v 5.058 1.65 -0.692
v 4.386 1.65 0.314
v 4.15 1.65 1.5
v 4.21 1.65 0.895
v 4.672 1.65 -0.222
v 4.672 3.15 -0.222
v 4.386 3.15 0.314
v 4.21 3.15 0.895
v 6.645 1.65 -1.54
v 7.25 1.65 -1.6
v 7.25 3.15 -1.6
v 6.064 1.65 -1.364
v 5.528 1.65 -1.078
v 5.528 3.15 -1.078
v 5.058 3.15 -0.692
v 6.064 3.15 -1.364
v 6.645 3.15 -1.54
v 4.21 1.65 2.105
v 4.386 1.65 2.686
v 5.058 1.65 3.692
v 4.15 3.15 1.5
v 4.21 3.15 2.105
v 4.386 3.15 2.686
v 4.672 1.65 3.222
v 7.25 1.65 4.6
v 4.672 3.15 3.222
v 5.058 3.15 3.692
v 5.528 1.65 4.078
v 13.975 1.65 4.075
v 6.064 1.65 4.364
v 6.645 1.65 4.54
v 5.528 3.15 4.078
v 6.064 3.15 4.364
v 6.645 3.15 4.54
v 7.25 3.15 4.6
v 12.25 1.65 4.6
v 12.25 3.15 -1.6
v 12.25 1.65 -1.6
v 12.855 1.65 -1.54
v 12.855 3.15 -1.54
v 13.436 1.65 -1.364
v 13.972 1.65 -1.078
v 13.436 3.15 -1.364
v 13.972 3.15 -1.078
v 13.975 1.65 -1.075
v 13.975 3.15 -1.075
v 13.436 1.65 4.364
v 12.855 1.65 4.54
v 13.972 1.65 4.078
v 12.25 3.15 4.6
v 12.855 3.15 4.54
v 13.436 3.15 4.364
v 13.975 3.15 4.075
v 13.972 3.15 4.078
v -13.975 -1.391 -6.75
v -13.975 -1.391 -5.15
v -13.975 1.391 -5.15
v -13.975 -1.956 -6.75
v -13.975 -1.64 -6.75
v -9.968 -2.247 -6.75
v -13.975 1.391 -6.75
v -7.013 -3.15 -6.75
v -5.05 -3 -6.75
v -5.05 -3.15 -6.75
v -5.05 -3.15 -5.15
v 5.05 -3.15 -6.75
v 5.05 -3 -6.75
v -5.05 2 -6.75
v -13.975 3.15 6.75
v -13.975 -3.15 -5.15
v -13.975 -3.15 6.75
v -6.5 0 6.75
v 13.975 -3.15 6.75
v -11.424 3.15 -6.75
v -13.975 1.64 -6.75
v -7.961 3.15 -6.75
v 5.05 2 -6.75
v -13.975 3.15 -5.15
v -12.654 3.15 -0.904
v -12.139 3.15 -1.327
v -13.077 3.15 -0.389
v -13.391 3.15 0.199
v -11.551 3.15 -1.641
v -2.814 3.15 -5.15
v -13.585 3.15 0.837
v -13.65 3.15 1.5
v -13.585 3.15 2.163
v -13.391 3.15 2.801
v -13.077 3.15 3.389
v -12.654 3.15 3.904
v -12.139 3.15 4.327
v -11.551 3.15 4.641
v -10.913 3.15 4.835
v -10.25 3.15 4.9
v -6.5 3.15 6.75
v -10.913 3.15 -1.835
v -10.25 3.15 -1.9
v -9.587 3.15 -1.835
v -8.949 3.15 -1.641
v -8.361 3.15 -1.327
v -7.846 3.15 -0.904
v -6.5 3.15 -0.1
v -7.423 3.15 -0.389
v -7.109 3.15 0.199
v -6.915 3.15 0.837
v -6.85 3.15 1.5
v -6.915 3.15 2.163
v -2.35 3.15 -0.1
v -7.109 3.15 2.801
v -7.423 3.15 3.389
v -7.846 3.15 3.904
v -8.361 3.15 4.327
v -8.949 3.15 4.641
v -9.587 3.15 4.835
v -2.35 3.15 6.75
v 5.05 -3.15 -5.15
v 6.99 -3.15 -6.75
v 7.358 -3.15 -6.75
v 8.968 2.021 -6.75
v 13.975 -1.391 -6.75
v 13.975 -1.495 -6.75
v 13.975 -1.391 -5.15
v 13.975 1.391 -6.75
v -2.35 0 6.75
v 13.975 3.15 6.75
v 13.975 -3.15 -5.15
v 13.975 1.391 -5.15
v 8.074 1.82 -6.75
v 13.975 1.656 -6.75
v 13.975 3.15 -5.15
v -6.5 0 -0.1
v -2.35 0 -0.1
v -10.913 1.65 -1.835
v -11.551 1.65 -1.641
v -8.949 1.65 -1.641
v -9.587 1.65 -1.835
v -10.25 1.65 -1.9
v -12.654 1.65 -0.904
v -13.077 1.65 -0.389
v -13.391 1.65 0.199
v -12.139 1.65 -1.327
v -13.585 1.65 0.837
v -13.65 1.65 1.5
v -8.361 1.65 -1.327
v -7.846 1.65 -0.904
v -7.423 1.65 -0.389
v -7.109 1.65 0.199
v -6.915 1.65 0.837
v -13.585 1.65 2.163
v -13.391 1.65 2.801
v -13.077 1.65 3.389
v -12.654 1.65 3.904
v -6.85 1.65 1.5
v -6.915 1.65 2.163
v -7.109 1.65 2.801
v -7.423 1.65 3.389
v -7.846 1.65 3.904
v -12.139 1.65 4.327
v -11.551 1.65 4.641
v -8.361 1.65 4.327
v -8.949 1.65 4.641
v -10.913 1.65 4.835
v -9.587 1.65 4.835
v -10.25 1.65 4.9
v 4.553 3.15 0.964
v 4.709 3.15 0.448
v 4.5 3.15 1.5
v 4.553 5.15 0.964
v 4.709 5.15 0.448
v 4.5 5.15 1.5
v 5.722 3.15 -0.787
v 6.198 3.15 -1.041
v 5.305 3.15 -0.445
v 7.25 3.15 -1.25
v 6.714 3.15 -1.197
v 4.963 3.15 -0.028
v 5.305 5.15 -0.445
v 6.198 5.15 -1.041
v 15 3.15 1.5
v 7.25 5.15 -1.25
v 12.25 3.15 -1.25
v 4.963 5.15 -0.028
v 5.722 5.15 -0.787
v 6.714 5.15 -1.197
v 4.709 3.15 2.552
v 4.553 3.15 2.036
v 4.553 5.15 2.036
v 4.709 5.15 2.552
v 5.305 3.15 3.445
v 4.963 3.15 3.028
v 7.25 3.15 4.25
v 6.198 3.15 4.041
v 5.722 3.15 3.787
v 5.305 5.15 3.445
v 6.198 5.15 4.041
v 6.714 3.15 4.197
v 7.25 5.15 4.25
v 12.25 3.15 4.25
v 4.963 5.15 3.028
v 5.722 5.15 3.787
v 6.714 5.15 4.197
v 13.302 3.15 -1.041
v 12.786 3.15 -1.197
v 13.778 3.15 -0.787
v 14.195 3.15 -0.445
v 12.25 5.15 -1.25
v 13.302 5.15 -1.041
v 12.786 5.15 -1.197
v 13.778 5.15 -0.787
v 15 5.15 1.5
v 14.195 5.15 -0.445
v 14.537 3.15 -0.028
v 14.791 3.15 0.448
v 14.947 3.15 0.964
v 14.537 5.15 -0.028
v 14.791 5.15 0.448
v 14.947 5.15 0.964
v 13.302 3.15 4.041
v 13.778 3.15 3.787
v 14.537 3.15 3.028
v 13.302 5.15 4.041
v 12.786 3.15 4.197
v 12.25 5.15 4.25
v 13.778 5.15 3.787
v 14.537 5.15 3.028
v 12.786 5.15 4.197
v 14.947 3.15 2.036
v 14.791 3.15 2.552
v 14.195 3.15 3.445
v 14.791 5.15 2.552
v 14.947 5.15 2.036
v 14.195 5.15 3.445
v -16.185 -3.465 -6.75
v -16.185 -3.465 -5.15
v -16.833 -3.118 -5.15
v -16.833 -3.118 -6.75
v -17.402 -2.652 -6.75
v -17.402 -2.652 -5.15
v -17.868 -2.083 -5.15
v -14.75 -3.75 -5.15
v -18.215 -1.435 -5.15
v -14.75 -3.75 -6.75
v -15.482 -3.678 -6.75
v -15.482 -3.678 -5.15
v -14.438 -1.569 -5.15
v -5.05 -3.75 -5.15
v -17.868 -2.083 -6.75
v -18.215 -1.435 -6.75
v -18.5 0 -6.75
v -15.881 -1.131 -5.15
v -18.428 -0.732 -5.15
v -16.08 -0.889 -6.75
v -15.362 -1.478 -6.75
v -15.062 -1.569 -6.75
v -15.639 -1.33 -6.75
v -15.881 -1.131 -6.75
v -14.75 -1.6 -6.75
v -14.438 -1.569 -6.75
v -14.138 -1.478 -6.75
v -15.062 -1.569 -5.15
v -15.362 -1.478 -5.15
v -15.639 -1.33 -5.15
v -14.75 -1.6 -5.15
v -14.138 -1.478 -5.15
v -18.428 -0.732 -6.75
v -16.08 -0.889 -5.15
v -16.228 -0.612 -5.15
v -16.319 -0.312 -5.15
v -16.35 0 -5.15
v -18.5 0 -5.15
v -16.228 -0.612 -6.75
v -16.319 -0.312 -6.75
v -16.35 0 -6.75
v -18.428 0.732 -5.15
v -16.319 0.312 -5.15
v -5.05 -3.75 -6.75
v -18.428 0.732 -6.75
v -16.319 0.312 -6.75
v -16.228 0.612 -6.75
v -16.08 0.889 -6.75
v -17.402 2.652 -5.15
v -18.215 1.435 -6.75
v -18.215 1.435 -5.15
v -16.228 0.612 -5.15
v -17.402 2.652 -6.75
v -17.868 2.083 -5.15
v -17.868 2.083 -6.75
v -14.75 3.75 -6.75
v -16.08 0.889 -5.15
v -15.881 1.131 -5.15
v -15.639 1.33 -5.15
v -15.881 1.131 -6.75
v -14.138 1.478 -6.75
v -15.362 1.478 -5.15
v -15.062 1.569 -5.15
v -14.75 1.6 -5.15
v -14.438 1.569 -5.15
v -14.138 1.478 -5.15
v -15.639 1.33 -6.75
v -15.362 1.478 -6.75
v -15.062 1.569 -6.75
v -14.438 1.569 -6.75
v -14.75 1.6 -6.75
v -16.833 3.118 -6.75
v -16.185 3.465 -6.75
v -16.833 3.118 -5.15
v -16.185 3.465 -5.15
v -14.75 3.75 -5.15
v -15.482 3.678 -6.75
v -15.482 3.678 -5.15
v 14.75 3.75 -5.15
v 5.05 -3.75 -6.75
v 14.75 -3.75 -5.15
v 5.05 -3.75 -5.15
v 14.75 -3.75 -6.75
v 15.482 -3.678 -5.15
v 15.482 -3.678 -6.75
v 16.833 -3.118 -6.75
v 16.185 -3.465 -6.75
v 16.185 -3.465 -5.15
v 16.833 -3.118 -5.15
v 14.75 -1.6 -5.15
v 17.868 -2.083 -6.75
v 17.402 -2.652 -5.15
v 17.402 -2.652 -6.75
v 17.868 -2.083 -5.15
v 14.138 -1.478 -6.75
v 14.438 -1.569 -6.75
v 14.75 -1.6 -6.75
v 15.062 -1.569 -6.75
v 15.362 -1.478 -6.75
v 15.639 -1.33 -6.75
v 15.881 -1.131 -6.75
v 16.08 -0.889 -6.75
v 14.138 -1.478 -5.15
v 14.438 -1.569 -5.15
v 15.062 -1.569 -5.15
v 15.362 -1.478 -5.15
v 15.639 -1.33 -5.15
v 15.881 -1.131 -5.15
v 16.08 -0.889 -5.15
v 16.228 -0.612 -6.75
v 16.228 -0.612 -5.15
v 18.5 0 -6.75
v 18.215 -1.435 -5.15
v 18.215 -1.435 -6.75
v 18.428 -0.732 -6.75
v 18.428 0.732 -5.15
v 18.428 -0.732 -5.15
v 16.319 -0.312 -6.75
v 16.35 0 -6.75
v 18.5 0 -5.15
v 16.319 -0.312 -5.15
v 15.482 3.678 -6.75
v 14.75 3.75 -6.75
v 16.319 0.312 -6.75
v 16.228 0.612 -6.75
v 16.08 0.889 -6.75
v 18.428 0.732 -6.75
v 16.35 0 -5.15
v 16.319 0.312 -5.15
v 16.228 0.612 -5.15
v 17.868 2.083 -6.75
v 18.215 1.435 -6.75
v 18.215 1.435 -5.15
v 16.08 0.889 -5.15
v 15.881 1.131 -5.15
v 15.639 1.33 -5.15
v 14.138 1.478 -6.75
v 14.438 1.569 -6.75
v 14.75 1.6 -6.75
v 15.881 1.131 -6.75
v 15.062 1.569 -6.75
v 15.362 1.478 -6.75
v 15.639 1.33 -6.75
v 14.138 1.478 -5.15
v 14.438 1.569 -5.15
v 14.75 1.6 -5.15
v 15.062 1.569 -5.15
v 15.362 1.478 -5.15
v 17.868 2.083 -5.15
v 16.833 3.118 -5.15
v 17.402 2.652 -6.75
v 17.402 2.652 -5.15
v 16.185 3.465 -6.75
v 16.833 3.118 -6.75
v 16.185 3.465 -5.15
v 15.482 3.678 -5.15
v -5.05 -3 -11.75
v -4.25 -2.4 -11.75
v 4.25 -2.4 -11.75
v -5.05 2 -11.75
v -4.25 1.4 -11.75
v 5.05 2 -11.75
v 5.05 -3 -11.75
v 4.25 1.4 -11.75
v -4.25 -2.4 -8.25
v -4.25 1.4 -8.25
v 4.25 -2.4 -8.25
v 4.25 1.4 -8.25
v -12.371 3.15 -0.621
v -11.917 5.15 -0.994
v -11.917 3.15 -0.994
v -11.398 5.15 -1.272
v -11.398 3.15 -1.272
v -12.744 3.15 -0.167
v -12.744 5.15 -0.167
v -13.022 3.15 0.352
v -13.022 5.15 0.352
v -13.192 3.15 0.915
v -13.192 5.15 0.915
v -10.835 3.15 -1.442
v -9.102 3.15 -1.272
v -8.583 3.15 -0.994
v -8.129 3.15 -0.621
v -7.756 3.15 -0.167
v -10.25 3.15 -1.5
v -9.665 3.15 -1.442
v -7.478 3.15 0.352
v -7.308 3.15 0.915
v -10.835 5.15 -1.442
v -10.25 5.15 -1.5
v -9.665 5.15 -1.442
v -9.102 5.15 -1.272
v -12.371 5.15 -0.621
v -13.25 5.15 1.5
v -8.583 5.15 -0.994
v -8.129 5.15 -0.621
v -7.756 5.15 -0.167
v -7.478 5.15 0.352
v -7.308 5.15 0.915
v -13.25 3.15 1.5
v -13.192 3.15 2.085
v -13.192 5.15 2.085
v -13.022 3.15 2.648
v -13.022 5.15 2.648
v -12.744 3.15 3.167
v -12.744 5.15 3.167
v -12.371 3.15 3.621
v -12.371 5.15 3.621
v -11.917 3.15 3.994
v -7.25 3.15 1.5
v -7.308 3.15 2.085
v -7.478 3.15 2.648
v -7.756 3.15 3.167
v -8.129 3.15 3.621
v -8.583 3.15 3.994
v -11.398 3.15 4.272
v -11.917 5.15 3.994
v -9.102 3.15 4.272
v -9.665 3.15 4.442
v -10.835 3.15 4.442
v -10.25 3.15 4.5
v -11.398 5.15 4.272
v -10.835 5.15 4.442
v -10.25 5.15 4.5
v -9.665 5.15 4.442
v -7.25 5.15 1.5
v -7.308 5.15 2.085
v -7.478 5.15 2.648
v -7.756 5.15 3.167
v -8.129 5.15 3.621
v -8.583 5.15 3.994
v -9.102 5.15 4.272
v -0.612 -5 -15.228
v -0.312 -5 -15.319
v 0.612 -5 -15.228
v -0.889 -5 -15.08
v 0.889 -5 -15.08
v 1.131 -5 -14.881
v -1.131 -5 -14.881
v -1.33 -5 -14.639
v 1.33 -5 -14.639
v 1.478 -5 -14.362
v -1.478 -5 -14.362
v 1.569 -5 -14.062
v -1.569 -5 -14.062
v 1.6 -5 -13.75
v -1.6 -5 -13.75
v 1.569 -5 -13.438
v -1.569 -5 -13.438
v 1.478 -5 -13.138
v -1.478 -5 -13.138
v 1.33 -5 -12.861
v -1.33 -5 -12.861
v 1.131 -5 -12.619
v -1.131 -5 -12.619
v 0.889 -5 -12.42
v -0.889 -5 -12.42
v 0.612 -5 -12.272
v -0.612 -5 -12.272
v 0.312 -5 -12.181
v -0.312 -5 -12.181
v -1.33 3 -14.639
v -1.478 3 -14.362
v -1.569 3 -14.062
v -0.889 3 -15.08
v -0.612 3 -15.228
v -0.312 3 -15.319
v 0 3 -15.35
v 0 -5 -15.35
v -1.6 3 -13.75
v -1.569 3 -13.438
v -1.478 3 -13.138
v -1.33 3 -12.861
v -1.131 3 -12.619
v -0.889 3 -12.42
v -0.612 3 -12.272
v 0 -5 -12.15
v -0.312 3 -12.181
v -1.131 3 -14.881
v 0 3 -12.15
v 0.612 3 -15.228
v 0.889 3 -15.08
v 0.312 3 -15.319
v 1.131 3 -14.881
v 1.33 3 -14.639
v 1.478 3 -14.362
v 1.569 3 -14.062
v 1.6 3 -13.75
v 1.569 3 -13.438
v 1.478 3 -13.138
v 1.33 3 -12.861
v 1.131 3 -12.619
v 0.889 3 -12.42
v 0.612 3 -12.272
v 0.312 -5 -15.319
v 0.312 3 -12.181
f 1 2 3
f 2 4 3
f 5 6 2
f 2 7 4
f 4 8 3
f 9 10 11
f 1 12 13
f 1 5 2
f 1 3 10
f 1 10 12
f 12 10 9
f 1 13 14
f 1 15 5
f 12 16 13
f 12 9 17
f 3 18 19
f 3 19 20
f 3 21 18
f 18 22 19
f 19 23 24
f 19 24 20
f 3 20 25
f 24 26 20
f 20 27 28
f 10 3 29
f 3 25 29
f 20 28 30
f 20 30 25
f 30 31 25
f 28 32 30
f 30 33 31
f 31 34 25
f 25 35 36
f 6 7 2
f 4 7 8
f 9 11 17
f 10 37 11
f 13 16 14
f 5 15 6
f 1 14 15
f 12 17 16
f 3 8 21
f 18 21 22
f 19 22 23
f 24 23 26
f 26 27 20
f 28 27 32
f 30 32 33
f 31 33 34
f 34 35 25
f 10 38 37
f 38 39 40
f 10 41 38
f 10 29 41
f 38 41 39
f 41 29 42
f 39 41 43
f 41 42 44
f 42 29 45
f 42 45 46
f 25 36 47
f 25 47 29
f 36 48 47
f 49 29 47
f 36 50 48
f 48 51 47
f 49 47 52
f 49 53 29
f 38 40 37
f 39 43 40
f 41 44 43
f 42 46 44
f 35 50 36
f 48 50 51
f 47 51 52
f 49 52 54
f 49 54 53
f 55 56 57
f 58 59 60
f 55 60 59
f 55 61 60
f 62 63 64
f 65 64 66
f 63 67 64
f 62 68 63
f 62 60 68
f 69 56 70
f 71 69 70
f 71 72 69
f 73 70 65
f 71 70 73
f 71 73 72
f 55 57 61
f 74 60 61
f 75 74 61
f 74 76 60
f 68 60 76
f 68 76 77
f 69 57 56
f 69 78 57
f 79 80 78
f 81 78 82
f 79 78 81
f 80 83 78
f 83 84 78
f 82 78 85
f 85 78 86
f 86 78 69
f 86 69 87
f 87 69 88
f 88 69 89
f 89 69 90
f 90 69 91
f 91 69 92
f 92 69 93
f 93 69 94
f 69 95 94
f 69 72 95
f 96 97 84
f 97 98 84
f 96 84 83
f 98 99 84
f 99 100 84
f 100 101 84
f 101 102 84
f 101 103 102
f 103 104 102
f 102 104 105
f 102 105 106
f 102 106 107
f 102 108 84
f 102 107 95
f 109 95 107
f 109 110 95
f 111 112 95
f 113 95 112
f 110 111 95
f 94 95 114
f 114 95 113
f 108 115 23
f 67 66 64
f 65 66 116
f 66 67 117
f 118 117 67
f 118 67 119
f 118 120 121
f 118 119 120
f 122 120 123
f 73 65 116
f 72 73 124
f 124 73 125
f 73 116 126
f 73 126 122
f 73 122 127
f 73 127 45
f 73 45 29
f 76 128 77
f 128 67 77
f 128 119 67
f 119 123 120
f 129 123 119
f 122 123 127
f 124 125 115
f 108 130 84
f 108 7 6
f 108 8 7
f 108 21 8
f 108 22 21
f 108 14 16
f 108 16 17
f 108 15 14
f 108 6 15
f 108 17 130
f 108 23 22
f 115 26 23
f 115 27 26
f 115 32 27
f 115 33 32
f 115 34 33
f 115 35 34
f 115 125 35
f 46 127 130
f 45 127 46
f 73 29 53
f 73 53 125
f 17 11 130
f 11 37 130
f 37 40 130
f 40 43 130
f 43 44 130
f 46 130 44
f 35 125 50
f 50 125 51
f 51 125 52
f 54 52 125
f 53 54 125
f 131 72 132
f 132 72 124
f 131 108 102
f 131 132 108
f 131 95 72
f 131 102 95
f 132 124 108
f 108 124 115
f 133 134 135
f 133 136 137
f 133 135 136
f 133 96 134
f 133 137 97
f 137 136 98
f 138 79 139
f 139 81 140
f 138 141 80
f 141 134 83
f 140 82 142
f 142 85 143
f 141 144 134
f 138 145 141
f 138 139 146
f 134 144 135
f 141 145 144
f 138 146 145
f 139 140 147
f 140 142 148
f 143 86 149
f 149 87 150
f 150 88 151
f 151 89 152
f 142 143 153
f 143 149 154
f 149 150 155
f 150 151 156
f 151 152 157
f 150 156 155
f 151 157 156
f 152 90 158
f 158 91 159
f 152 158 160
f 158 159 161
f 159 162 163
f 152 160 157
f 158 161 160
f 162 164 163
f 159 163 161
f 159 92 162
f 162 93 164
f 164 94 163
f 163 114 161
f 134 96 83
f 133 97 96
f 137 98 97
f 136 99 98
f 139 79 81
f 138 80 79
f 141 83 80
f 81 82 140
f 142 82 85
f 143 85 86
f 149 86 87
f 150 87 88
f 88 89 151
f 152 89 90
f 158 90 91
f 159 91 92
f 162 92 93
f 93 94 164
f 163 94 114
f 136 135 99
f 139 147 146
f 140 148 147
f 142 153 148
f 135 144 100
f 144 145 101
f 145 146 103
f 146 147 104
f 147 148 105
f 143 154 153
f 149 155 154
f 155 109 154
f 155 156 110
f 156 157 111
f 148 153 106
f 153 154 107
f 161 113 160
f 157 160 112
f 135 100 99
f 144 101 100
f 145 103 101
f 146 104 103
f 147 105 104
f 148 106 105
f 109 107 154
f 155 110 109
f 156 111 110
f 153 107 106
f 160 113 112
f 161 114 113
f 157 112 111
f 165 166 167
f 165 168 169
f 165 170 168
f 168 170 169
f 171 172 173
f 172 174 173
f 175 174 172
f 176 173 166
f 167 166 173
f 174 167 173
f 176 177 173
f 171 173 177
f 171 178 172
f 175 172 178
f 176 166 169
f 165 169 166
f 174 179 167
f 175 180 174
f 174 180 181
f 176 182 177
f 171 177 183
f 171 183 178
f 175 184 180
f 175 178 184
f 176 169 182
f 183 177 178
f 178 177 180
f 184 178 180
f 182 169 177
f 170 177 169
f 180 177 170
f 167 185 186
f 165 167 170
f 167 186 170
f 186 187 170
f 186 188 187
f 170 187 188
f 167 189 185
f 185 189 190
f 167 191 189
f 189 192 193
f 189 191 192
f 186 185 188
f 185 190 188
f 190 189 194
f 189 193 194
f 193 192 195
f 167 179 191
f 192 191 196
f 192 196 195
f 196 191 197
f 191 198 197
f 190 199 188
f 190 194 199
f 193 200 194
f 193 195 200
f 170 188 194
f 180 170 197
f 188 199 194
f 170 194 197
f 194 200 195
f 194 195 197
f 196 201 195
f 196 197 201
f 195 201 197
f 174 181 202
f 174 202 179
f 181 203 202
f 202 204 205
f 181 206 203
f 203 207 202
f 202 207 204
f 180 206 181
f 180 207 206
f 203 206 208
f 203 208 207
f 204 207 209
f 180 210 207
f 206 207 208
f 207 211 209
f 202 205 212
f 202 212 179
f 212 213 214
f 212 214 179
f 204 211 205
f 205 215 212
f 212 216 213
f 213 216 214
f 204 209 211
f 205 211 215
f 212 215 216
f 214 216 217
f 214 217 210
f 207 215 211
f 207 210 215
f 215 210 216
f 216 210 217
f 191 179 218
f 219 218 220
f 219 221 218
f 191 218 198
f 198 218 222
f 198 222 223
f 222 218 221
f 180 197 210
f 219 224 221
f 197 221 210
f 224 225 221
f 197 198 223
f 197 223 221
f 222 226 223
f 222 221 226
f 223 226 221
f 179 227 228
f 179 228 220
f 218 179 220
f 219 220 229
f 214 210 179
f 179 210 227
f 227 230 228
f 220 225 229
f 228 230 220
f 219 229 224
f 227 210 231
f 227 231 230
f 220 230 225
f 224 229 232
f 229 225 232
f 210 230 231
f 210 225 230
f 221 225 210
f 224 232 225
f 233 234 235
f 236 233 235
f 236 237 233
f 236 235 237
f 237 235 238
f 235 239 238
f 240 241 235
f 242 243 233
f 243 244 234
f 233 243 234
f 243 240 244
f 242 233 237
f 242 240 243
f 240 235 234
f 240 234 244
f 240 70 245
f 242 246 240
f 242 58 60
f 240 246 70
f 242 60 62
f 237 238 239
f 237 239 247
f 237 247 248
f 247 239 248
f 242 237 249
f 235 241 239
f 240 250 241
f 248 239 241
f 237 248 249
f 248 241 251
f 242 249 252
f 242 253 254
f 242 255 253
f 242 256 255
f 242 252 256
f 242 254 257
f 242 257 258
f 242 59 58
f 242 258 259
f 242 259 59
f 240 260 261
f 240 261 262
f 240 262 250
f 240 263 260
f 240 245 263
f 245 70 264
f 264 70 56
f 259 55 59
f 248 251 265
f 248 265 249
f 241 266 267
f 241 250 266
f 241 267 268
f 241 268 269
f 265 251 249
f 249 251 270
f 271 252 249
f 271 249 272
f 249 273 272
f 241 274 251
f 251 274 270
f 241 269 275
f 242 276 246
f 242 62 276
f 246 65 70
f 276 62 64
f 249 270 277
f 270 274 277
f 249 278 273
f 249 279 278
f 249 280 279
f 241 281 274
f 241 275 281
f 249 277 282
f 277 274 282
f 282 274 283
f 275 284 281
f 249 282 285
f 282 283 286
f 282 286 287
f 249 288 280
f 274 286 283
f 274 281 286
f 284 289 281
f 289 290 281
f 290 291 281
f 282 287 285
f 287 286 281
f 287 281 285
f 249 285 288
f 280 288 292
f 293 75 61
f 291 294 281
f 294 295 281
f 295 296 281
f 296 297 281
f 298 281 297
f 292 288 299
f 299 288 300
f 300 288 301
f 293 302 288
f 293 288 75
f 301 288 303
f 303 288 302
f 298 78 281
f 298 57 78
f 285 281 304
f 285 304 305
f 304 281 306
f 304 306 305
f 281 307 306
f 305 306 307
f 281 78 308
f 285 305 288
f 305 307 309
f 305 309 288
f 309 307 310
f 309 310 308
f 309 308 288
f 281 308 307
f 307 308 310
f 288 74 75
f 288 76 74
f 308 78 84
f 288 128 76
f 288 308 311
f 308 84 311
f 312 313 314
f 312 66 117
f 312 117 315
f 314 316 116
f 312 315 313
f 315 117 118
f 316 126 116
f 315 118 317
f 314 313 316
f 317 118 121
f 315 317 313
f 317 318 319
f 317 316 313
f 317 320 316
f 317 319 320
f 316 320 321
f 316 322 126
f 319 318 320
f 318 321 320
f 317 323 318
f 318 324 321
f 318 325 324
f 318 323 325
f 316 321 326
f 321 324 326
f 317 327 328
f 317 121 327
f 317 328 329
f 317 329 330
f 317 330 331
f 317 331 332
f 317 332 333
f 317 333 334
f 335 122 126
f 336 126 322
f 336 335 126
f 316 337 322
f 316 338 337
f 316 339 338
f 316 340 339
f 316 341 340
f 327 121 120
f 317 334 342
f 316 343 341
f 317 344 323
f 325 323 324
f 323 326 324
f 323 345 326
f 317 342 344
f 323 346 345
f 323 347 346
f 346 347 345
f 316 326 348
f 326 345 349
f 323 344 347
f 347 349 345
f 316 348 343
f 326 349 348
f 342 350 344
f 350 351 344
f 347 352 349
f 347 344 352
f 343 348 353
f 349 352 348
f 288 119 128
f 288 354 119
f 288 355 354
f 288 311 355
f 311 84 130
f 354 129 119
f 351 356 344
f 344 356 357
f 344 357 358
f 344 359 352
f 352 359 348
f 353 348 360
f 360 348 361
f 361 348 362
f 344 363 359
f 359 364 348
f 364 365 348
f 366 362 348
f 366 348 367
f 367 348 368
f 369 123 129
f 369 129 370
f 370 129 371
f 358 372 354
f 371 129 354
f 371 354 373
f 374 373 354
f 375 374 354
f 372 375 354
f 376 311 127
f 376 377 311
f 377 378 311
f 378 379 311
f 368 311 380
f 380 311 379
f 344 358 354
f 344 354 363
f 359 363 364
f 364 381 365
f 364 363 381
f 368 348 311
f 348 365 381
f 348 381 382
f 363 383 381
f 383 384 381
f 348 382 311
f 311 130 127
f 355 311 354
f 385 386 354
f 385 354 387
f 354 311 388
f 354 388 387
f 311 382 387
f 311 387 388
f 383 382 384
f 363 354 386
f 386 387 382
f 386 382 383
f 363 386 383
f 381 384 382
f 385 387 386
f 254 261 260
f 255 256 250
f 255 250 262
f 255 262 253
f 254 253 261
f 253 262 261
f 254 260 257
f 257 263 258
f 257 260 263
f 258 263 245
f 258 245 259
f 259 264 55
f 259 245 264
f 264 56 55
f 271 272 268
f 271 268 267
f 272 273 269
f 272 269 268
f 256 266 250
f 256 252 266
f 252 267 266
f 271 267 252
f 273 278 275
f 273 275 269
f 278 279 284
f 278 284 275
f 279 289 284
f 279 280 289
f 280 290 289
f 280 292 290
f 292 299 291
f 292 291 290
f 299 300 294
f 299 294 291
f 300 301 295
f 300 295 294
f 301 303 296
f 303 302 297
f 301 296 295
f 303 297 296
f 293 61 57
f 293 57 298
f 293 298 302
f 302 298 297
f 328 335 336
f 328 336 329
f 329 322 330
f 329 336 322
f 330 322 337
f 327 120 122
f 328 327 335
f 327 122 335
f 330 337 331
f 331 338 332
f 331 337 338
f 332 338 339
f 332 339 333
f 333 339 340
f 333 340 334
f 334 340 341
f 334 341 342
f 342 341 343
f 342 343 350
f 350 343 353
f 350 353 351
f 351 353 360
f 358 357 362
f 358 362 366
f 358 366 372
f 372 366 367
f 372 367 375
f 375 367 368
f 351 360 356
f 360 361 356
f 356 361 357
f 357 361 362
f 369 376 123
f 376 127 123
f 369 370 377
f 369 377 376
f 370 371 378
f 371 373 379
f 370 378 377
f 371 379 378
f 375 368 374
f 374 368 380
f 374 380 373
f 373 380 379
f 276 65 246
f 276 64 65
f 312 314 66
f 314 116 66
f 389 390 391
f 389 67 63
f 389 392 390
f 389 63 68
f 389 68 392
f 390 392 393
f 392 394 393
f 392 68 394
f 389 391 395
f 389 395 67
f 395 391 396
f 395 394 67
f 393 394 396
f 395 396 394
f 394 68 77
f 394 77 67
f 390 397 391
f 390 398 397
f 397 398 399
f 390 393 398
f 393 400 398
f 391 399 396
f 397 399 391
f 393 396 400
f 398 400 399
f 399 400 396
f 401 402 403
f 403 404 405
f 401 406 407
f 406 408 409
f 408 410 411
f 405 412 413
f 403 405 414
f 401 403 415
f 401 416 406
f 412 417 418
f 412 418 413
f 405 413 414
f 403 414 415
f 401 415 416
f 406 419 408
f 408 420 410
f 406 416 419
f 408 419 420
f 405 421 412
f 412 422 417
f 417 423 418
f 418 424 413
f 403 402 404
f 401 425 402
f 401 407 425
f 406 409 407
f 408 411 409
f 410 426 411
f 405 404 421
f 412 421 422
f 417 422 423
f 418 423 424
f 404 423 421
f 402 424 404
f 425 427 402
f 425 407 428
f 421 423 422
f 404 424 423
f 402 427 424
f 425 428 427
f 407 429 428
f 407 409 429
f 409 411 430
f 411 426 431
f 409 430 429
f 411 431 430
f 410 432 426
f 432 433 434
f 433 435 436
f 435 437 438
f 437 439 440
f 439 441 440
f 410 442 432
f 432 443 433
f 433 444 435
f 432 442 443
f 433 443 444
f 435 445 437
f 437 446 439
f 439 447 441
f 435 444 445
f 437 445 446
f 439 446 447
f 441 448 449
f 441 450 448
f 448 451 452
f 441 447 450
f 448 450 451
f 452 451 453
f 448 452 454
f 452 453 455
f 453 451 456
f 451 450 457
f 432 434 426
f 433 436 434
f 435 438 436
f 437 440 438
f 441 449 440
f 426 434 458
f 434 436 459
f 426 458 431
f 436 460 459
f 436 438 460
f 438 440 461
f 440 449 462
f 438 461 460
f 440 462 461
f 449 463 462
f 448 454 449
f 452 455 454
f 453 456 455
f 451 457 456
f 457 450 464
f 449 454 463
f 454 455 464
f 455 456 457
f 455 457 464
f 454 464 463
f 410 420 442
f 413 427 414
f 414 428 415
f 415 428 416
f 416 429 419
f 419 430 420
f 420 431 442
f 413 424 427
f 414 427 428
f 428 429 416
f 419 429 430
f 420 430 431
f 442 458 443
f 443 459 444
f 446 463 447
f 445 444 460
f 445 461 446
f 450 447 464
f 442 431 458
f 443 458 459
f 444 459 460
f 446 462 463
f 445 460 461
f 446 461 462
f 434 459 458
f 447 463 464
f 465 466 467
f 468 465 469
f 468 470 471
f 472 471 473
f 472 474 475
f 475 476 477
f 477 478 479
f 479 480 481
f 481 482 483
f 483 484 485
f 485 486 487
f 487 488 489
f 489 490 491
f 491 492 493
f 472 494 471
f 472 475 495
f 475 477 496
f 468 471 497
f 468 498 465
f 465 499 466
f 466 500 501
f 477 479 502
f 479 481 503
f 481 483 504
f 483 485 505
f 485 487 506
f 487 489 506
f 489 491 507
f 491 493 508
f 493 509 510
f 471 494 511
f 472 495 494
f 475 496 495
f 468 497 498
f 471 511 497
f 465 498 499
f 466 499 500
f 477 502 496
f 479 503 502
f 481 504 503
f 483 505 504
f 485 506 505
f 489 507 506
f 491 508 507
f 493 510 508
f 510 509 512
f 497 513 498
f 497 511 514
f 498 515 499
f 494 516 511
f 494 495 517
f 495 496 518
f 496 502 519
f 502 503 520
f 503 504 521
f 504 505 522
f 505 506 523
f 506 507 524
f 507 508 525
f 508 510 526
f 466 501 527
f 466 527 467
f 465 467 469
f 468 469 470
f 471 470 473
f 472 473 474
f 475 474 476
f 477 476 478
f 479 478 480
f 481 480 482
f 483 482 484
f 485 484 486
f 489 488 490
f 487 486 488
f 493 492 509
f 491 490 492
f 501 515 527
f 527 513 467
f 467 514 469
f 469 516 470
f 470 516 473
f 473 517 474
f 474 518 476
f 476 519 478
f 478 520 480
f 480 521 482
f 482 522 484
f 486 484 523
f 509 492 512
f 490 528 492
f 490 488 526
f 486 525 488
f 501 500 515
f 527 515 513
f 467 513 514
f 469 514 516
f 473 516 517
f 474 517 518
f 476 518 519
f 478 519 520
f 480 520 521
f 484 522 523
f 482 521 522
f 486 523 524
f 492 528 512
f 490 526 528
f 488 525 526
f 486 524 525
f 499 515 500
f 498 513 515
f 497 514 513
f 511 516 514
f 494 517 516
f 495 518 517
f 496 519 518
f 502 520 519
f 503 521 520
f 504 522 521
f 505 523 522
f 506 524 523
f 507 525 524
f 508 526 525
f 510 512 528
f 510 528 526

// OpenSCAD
// Sharp GP2Y0A21YK0F Distance Measuring Sensor
// Units: mm
// Origin: Center of main sensor body
// Axes: +X = Right, +Y = Forward (Lens direction), +Z = Up

$fn = 32;

// Main Dimensions from Datasheet
body_w = 27.95;     // 7.5 + 4.15 + 16.3 mm
body_h = 13.5;      // Height of main body
body_d = 6.3;       // Case depth

flange_w = 37.0;    // Total width including mounting ears
flange_h = 1.6;     // Thickness of mounting bar
flange_d = 7.5;     // Depth of mounting bar (2 * R3.75)
hole_dist = 29.5;   // Distance between mounting holes
hole_dia = 3.2;     // Diameter of mounting holes

// Lens position relative to center
// Left hole at X = -14.75, Emitter center = -14.75 + 4.5 = -10.25
// Detector center = -10.25 + 20.0 = +9.75
emitter_x = -10.25;
detector_x = 9.75;

module gp2y0a21yk0f() {
    union() {
        // --- Main Lens Case Body ---
        difference() {
            // Main case block
            translate([0, 0, 0])
                cube([body_w, body_d, body_h], center=true);
            
            // Top/Front divider notch between emitter and detector
            translate([emitter_x + 7.5/2 + 4.15/2, body_d/4 + 0.1, body_h/4])
                cube([4.15, body_d/2 + 0.2, body_h/2 + 0.2], center=true);
            
            // Lens window recessed cutouts on front (+Y)
            translate([emitter_x, body_d/2 - 0.5, 1.5])
                rotate([-90, 0, 0])
                    cylinder(d=6.8, h=2, center=true);

            translate([detector_x, body_d/2 - 0.5, 1.5])
                rotate([-90, 0, 0])
                    hull() {
                        translate([-2.5, 0, 0]) cylinder(d=6.2, h=2, center=true);
                        translate([ 2.5, 0, 0]) cylinder(d=6.2, h=2, center=true);
                    }
        }

        // --- Lenses (Protruding +Y by 2mm) ---
        // Light Emitter Lens (Circular)
        translate([emitter_x, body_d/2 + 1.0, 1.5])
            rotate([-90, 0, 0])
                cylinder(d=6.0, h=2.0, center=true);

        // Light Detector Lens (Oval / Dual-convex)
        translate([detector_x, body_d/2 + 1.0, 1.5])
            rotate([-90, 0, 0])
                hull() {
                    translate([-2.5, 0, 0]) cylinder(d=5.5, h=2.0, center=true);
                    translate([ 2.5, 0, 0]) cylinder(d=5.5, h=2.0, center=true);
                }

        // --- Mounting Flange Bar ---
        translate([0, 0, -body_h/2 + flange_h/2]) {
            difference() {
                // Flange outer shape
                hull() {
                    translate([-hole_dist/2, 0, 0])
                        cylinder(d=flange_d, h=flange_h, center=true);
                    translate([hole_dist/2, 0, 0])
                        cylinder(d=flange_d, h=flange_h, center=true);
                }
                
                // Two Mounting Holes (dia 3.2mm)
                translate([-hole_dist/2, 0, 0])
                    cylinder(d=hole_dia, h=flange_h + 1, center=true);
                translate([hole_dist/2, 0, 0])
                    cylinder(d=hole_dia, h=flange_h + 1, center=true);
                
                // Cable cutout notch
                translate([0, -flange_d/4, 0])
                    cube([10.1, flange_d/2 + 0.1, flange_h + 1], center=true);
            }
        }

        // --- Lower Connector Shroud & PCB ---
        translate([0, -0.5, -body_h/2 - 2.5]) {
            difference() {
                cube([10.1, 5.0, 5.0], center=true);
                translate([0, 0, -1])
                    cube([8.5, 3.8, 4.0], center=true);
            }
        }

        // --- Cable Wire Bundle Representation ---
        translate([0, -1.0, -body_h/2 - 7.0]) {
            rotate([90, 0, 0])
                cylinder(d=3.2, h=8.0, center=true);
        }
    }
}

gp2y0a21yk0f();
